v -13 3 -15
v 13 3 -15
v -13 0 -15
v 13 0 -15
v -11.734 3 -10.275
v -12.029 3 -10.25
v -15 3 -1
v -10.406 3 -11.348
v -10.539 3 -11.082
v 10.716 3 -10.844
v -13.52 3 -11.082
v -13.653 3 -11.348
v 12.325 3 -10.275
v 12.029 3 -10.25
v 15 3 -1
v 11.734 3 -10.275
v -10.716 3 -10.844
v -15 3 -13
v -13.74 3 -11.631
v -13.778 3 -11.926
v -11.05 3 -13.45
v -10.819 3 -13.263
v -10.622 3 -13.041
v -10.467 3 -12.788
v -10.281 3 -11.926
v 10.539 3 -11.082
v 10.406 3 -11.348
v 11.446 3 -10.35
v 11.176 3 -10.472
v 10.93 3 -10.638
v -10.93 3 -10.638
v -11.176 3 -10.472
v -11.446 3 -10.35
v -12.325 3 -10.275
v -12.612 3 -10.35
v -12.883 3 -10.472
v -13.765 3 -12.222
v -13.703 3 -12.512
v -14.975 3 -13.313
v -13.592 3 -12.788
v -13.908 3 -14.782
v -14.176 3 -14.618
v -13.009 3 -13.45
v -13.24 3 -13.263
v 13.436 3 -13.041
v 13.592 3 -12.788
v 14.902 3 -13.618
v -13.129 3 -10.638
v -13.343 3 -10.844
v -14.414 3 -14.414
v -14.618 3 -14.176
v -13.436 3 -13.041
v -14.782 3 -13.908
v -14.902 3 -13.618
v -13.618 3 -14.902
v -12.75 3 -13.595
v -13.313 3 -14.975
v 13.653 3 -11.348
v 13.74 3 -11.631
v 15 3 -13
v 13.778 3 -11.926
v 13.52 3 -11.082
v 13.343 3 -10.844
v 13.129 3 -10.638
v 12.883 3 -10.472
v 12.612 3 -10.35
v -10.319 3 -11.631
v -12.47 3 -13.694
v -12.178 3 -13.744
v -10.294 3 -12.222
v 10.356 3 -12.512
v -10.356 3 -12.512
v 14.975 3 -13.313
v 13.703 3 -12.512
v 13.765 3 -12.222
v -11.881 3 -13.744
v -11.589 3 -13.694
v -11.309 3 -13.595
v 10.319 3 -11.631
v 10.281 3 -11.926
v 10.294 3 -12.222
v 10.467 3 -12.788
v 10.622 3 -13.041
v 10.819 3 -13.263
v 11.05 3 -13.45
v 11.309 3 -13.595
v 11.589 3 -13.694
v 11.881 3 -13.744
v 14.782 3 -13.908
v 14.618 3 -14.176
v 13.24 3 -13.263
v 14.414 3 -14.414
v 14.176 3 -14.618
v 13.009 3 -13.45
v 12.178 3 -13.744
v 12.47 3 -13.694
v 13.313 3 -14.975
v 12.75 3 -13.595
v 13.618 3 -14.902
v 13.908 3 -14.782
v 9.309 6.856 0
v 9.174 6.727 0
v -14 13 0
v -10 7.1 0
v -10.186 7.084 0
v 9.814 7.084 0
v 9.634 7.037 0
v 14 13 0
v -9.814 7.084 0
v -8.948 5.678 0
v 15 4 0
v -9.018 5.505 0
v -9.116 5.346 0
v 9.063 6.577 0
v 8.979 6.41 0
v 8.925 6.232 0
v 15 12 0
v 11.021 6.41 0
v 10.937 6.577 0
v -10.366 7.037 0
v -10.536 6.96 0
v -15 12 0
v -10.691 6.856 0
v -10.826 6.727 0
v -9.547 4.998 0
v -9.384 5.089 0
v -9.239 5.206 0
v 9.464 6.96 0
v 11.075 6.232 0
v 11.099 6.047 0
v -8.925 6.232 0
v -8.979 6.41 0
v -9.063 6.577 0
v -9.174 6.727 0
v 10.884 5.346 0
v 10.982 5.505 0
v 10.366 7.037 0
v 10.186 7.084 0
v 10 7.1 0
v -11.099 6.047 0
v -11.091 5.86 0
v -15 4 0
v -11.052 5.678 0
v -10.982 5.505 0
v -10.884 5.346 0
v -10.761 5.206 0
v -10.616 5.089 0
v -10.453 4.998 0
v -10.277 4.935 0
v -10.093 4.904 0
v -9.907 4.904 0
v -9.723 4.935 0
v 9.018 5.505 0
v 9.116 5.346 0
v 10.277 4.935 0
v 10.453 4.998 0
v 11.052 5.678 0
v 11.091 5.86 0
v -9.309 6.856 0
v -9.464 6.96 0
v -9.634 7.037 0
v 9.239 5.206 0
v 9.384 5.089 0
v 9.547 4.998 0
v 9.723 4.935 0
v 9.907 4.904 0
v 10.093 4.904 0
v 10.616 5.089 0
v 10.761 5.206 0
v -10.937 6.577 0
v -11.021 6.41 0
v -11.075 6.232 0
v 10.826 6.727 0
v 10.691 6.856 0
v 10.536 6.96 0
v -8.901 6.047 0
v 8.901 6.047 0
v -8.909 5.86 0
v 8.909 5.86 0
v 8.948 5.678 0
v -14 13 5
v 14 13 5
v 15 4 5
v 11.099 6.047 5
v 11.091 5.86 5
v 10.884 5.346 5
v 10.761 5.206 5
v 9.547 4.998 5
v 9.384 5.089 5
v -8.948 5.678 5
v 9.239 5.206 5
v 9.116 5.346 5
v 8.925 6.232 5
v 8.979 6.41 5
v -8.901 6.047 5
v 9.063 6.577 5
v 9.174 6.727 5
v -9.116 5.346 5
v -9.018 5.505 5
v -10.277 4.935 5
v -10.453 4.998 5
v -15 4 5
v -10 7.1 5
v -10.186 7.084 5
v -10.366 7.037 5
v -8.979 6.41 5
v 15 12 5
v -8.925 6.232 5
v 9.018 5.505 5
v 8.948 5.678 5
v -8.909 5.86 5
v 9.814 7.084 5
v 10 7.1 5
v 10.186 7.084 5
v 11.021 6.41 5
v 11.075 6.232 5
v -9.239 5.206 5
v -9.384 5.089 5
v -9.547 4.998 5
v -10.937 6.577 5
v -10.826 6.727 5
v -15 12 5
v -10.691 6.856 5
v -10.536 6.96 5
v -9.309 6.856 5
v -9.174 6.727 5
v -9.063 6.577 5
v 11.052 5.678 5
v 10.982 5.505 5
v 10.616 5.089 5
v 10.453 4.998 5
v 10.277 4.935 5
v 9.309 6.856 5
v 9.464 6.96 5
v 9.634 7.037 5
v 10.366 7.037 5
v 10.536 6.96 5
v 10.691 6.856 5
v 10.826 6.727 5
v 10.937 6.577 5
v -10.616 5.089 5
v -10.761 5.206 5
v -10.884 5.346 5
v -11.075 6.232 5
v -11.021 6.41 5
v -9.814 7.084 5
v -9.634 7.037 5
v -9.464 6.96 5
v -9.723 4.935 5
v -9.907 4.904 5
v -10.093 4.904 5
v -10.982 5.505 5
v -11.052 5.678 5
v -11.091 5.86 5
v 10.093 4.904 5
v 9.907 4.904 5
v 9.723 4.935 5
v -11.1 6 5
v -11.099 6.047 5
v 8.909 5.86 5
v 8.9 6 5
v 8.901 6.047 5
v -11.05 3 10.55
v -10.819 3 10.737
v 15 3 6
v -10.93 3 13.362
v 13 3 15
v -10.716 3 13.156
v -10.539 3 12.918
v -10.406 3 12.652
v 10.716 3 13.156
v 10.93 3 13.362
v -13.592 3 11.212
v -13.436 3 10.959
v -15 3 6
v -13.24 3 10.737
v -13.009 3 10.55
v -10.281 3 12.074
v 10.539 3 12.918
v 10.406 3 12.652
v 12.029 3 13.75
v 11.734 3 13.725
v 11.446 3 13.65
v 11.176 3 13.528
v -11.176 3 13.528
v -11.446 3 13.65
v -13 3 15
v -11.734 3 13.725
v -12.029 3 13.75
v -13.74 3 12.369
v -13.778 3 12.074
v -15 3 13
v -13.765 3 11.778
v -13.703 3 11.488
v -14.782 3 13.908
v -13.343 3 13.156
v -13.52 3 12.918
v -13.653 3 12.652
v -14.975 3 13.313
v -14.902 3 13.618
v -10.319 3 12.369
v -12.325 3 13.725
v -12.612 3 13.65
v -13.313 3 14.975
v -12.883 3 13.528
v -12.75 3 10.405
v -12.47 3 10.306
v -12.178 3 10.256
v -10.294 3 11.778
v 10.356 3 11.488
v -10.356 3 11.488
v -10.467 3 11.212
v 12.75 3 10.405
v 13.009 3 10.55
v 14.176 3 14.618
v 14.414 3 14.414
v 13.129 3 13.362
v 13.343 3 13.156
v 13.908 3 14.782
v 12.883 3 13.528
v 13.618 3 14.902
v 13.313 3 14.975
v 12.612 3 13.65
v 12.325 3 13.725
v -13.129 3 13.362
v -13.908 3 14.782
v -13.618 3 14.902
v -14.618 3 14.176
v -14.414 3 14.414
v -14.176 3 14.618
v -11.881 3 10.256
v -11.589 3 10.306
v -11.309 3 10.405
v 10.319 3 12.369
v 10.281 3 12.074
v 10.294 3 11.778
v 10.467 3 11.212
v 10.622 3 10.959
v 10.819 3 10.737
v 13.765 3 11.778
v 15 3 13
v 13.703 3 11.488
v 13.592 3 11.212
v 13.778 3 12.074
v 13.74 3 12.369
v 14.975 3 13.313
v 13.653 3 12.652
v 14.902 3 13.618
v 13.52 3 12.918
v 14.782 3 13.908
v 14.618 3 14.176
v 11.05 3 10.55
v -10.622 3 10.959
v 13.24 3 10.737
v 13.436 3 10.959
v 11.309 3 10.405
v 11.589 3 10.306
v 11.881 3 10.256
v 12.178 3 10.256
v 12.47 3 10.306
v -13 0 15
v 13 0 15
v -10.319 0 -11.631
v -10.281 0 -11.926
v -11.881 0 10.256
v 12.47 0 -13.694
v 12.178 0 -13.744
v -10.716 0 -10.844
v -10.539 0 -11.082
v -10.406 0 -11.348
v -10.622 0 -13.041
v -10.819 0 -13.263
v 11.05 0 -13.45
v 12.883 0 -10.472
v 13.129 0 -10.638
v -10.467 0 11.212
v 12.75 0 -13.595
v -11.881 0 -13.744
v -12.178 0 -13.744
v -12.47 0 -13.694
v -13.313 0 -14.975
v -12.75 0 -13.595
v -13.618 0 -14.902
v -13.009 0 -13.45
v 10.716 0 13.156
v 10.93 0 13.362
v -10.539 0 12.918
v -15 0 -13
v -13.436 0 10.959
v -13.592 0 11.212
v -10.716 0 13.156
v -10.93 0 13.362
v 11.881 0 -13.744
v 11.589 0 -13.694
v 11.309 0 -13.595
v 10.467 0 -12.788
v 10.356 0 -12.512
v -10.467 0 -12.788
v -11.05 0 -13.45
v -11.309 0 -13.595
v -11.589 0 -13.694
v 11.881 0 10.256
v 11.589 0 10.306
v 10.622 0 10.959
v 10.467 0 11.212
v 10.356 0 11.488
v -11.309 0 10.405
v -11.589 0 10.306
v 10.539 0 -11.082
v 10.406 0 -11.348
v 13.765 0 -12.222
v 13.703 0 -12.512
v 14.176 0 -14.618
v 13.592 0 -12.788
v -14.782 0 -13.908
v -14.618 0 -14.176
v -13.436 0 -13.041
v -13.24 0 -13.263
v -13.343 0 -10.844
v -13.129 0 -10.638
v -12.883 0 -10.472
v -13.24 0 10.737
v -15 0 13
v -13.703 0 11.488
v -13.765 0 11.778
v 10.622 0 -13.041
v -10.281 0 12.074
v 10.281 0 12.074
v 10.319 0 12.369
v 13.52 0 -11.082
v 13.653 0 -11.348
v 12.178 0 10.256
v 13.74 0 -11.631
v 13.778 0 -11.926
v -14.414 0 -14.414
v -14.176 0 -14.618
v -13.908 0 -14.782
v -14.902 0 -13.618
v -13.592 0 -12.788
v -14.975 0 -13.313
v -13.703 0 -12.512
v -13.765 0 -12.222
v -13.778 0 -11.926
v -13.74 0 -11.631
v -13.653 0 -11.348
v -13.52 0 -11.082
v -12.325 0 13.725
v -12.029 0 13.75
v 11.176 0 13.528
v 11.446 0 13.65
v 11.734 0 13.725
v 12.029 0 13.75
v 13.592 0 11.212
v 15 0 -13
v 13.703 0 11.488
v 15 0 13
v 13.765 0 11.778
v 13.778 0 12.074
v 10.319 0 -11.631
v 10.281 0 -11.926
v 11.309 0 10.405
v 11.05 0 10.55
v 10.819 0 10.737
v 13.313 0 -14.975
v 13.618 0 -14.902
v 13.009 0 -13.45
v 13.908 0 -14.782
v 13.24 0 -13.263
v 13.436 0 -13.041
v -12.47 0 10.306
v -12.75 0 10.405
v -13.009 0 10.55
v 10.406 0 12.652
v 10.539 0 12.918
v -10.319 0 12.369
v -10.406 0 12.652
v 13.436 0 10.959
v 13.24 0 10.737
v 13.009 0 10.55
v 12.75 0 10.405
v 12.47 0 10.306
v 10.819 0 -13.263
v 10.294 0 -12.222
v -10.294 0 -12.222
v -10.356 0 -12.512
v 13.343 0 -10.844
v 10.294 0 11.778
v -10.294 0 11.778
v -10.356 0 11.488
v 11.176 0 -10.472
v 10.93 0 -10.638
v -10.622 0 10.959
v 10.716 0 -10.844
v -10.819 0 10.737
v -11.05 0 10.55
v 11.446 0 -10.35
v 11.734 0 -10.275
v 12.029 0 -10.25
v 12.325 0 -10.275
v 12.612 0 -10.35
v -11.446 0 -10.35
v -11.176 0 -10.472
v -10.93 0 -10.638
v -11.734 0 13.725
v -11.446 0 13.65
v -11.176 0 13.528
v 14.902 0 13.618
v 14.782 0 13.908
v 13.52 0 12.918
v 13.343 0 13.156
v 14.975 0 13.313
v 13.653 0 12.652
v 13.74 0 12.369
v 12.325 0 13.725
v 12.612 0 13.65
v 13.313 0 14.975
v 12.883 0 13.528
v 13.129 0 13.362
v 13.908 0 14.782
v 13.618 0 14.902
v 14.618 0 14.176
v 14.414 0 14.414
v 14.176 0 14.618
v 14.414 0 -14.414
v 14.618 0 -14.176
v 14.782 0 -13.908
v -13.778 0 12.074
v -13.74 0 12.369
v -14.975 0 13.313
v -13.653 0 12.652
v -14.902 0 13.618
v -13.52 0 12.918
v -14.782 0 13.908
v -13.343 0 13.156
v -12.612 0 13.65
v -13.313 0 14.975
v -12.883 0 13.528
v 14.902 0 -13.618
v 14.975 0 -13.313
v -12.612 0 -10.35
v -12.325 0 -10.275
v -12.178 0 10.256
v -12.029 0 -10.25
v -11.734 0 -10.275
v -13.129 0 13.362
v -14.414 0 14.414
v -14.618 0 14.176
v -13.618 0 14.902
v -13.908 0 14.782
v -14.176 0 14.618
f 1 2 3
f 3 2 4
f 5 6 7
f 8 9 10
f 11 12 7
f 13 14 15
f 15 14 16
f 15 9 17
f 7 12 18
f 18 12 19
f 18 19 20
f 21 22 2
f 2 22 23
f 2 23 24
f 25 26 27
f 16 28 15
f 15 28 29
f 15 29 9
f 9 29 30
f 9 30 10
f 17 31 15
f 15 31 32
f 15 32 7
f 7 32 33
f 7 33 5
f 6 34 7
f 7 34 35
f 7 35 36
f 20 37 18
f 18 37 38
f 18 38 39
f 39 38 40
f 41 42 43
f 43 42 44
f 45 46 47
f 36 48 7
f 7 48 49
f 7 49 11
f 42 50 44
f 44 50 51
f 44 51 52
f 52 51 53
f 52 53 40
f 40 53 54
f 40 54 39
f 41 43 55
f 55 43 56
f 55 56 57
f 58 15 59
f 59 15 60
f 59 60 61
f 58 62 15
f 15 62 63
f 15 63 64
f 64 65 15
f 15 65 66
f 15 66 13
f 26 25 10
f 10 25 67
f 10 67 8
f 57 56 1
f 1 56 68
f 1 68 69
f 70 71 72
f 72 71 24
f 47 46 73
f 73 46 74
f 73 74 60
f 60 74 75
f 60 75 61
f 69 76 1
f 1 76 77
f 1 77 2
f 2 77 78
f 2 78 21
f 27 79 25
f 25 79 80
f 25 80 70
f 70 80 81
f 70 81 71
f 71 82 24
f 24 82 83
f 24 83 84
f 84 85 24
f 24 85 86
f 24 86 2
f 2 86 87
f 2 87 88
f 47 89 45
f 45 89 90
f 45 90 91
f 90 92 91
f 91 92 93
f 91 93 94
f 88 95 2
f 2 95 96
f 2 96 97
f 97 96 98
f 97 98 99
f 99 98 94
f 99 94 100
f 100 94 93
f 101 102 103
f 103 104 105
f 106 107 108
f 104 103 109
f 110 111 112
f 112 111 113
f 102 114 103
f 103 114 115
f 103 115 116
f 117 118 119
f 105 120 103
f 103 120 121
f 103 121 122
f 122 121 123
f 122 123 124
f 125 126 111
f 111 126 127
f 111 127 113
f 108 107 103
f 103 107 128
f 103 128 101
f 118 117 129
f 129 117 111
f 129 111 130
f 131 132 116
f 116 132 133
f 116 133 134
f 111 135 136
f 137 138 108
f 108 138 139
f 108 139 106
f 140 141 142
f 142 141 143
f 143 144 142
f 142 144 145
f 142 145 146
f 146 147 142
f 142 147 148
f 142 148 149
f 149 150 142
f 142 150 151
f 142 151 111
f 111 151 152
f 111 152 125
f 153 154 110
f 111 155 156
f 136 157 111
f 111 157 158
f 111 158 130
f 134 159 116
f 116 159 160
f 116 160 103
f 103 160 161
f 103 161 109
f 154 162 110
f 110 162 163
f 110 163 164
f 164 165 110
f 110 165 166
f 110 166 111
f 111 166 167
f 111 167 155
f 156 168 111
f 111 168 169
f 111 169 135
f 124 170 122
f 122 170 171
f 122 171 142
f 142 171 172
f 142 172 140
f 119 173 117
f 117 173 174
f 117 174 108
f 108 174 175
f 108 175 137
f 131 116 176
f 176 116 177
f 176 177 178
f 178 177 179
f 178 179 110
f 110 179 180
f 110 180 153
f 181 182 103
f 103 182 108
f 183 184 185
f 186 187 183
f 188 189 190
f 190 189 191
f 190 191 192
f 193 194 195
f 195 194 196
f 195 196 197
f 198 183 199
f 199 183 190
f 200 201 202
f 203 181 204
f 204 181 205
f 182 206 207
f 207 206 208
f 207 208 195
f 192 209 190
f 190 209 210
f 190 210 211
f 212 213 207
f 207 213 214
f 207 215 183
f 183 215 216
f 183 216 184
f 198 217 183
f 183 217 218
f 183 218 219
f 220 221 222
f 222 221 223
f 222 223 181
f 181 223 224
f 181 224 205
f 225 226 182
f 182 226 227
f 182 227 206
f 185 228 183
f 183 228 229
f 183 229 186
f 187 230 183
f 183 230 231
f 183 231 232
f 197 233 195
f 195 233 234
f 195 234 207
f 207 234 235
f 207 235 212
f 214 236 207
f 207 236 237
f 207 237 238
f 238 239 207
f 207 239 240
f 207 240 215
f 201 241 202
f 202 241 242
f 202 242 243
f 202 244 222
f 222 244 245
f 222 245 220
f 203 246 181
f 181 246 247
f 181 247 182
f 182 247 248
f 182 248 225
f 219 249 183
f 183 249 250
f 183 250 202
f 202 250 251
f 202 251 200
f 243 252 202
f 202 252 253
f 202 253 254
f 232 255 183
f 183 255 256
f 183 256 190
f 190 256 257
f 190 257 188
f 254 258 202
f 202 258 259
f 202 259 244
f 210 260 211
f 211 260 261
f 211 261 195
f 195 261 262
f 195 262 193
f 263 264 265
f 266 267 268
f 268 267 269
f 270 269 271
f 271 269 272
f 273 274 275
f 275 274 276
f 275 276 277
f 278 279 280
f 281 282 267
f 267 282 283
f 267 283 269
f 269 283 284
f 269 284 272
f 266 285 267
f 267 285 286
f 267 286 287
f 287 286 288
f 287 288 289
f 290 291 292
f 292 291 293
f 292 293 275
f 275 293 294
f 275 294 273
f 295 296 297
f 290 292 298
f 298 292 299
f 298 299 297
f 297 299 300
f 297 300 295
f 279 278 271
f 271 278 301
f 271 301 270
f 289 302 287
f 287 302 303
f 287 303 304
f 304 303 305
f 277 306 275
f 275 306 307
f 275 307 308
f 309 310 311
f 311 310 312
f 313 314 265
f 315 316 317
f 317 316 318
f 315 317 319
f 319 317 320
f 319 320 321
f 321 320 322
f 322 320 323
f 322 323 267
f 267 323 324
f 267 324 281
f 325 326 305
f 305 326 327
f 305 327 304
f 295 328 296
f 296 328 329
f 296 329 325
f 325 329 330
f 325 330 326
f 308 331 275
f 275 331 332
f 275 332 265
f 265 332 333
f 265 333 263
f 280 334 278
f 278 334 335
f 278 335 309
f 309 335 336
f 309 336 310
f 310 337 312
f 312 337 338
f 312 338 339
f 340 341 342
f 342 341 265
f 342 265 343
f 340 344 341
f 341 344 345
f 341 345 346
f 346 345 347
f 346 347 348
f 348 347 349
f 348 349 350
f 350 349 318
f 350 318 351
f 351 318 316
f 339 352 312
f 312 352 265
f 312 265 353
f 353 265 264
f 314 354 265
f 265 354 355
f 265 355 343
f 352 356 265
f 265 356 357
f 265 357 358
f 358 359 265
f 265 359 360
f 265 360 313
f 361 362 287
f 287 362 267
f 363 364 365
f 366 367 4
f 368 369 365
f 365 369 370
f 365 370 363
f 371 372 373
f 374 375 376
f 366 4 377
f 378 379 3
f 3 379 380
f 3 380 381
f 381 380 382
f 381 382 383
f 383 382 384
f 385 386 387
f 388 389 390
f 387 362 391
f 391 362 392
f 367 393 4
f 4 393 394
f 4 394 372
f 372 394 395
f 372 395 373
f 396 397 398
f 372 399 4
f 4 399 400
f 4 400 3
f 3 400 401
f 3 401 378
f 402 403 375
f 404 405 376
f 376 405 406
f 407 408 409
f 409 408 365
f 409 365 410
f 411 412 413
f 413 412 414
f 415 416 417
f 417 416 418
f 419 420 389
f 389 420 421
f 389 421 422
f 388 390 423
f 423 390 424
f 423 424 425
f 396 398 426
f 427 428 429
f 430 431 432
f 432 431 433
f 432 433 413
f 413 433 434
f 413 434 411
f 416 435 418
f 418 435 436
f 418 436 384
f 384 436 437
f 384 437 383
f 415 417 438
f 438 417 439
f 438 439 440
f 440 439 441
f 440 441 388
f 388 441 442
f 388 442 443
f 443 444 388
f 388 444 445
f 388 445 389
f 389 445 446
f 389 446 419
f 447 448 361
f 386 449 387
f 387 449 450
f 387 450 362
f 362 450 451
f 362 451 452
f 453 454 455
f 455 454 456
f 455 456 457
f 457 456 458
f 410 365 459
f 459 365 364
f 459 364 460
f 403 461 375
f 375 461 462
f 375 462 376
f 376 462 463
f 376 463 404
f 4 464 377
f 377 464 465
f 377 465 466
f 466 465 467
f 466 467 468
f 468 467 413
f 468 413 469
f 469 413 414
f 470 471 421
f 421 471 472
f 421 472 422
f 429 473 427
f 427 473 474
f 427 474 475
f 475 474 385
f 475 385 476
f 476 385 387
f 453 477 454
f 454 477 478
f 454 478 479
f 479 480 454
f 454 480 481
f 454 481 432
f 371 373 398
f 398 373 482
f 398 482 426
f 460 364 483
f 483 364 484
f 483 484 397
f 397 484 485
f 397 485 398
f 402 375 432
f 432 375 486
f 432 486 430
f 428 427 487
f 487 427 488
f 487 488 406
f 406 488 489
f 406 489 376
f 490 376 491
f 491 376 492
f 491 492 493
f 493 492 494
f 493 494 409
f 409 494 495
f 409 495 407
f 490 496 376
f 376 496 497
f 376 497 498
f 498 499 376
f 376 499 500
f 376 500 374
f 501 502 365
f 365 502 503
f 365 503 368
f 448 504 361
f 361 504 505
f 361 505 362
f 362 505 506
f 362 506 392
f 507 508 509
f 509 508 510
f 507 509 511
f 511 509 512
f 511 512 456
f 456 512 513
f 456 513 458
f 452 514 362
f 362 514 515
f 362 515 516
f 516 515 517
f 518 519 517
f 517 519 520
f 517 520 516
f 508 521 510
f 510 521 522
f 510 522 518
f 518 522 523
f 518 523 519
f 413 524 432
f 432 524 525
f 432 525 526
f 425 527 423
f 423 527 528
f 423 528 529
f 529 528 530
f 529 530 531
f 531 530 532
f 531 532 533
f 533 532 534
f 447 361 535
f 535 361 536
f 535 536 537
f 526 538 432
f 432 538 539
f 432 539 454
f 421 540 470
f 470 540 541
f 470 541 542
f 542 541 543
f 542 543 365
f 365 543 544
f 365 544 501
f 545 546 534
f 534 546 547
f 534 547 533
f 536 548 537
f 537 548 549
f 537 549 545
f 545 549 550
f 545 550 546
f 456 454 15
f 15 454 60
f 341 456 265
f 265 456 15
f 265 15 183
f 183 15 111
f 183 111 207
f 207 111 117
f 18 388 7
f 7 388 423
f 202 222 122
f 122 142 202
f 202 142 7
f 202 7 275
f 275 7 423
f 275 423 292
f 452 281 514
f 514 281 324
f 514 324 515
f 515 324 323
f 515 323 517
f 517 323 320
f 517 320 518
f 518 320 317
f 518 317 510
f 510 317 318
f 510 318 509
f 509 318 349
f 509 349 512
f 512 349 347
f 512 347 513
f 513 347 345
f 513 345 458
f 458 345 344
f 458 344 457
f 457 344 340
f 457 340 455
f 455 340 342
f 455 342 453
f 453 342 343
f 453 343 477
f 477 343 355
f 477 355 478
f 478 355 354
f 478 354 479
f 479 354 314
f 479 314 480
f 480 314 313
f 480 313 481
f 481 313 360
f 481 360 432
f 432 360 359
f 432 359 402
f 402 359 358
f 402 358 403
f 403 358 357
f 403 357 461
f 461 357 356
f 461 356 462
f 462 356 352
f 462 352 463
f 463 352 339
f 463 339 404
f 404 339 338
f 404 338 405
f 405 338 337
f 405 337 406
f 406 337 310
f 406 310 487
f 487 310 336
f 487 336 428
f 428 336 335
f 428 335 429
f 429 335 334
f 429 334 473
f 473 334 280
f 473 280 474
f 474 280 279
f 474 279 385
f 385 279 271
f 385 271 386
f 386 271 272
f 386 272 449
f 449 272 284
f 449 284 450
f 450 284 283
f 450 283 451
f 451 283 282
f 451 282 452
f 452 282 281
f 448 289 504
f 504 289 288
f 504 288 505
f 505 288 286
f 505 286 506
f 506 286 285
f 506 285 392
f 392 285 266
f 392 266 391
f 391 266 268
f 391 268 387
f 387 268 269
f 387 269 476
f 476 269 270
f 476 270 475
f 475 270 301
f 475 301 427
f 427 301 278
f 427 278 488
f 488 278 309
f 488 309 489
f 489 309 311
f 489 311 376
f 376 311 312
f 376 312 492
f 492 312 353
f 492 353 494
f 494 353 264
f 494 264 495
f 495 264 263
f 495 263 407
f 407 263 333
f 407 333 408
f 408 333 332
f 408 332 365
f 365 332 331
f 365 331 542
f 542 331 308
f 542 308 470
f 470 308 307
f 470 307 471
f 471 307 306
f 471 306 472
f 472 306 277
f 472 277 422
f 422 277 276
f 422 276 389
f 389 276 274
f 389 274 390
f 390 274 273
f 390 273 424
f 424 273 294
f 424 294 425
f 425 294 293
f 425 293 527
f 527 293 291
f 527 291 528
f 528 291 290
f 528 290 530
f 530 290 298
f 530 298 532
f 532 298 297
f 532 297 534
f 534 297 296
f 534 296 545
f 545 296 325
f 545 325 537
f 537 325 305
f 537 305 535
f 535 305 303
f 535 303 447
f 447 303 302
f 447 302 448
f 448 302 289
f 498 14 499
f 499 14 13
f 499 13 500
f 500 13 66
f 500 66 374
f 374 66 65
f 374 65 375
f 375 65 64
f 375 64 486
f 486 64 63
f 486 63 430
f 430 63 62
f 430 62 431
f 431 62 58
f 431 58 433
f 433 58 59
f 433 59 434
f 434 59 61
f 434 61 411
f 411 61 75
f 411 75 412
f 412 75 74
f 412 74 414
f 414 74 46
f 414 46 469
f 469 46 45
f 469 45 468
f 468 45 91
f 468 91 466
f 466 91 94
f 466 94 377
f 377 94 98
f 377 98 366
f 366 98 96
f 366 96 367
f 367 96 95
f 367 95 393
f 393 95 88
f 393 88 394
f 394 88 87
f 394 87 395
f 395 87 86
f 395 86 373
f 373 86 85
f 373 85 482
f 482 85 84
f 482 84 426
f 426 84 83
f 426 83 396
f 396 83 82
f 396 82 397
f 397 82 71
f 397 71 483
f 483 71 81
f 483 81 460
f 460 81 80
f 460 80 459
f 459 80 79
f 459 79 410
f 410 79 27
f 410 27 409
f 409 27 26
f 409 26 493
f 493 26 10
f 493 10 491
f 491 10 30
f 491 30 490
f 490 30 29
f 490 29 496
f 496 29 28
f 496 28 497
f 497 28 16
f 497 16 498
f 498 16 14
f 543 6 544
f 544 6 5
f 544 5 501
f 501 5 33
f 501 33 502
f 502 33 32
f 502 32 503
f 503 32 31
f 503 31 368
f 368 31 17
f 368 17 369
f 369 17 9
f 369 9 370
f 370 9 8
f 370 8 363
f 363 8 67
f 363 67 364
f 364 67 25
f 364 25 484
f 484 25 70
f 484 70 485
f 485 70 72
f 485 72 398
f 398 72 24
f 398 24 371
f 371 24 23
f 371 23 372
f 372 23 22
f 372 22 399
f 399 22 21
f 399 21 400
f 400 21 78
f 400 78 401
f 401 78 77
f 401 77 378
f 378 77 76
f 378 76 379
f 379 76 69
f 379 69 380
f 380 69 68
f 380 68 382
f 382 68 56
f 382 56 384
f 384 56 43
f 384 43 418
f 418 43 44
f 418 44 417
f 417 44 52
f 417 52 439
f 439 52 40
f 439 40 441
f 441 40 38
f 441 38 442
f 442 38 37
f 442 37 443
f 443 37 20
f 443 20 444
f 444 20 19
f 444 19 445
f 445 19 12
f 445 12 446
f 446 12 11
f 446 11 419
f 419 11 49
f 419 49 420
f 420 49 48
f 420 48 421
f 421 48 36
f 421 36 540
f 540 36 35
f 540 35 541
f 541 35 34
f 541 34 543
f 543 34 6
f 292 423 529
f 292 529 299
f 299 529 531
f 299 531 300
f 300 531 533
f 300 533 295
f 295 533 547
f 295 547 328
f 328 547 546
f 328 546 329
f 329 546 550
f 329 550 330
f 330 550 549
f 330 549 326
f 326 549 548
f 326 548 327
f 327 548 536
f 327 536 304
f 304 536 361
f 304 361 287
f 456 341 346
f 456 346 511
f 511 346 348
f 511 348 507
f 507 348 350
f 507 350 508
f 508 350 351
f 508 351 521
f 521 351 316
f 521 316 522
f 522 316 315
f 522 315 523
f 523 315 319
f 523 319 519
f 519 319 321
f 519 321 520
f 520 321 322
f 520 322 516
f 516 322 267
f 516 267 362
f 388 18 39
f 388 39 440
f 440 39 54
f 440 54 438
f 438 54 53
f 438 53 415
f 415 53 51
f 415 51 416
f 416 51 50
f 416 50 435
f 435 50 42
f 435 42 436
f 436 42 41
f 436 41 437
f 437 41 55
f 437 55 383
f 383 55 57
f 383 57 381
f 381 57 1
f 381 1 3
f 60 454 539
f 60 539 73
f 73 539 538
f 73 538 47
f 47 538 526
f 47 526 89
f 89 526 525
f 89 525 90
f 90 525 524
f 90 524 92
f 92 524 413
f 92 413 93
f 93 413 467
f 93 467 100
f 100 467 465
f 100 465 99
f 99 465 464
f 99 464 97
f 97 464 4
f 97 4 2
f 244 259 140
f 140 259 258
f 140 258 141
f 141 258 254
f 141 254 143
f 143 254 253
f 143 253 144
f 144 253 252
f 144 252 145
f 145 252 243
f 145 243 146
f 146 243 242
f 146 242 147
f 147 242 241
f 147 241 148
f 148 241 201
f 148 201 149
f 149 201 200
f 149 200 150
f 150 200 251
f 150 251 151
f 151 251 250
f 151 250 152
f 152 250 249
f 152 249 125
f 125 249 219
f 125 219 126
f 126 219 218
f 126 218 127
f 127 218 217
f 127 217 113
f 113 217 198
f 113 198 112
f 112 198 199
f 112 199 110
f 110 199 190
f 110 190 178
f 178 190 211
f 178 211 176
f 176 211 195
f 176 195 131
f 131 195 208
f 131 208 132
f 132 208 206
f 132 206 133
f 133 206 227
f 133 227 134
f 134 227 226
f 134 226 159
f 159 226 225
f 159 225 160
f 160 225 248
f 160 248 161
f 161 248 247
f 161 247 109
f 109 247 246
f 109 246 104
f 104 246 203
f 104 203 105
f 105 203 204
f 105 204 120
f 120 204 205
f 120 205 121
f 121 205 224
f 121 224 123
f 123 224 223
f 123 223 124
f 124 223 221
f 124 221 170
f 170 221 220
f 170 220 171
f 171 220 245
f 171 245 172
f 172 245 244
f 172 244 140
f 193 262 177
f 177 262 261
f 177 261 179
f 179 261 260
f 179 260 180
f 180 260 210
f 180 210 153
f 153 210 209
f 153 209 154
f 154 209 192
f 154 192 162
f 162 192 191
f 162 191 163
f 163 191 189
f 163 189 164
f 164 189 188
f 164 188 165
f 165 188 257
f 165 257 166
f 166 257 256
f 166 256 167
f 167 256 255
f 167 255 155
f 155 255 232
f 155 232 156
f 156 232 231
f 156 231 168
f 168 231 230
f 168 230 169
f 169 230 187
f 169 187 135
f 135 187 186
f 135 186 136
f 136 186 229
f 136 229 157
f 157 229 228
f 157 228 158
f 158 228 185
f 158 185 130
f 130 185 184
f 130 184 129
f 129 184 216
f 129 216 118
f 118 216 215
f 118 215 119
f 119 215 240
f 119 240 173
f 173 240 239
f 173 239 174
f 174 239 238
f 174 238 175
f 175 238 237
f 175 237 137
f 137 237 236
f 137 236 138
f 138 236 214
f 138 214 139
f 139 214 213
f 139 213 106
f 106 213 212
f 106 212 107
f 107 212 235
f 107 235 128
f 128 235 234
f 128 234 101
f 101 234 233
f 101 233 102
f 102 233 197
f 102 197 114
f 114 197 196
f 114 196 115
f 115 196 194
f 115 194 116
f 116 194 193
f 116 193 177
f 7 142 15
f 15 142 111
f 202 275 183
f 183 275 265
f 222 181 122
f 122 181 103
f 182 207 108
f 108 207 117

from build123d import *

# Parameters (mm, degrees)
BOSS_EXTRUDE1_DEPTH        = 15
F_3_5_3_5_DIAMETER_HOLE1_D = 3.5
FILLET1_R                  = 2
F_2_2_2_2_DIAMETER_HOLE1_D = 2.2
CHAMFER1_SIZE              = 1
CHAMFER2_SIZE              = 1


with BuildPart() as part:
    # Sketch1 → Boss-Extrude1 (new, symmetric)
    with BuildSketch(Plane(origin=(0, 0, 0), x_dir=(0, 0, -1), z_dir=(1, 0, 0))):
        Polygon((-15, 0), (15, 0), (15, 3), (0, 3), (0, 13), (-5, 13), (-5, 3), (-15, 3), align=None)
    extrude(amount=BOSS_EXTRUDE1_DEPTH, both=True)

    # Ø3.5 (3.5) Diameter Hole1 (through all)
    with Locations(Plane(origin=(0, 3, 0), x_dir=(1, 0, 0), z_dir=(0, 1, 0))):
        with Locations((-12.02948497, 12), (12.02948497, 12), (-12.02948497, -12), (12.02948497, -12)):
            Hole(F_3_5_3_5_DIAMETER_HOLE1_D / 2)

    # Fillet1
    fillet1_edges = [part.edges().sort_by_distance(p)[0] for p in [
        (-15, 1.5, -15),
        (15, 1.5, 15),
        (15, 1.5, -15),
        (-15, 1.5, 15),
    ]]
    fillet(fillet1_edges, radius=FILLET1_R)

    # Ø2.2 (2.2) Diameter Hole1 (through all)
    with Locations(Plane(origin=(0, 0, 0), x_dir=(-1, 0, 0), z_dir=(0, 0, -1))):
        with Locations((-10, 6), (10, 6)):
            Hole(F_2_2_2_2_DIAMETER_HOLE1_D / 2)

    # Chamfer1
    chamfer1_edges = [part.edges().sort_by_distance(p)[0] for p in [
        (0, 3, 5),
        (0, 3, 0),
    ]]
    chamfer(chamfer1_edges, length=CHAMFER1_SIZE)

    # Chamfer2
    chamfer2_edges = [part.edges().sort_by_distance(p)[0] for p in [
        (-15, 13, 2.5),
        (15, 13, 2.5),
    ]]
    chamfer(chamfer2_edges, length=CHAMFER2_SIZE)


solid = part.part
